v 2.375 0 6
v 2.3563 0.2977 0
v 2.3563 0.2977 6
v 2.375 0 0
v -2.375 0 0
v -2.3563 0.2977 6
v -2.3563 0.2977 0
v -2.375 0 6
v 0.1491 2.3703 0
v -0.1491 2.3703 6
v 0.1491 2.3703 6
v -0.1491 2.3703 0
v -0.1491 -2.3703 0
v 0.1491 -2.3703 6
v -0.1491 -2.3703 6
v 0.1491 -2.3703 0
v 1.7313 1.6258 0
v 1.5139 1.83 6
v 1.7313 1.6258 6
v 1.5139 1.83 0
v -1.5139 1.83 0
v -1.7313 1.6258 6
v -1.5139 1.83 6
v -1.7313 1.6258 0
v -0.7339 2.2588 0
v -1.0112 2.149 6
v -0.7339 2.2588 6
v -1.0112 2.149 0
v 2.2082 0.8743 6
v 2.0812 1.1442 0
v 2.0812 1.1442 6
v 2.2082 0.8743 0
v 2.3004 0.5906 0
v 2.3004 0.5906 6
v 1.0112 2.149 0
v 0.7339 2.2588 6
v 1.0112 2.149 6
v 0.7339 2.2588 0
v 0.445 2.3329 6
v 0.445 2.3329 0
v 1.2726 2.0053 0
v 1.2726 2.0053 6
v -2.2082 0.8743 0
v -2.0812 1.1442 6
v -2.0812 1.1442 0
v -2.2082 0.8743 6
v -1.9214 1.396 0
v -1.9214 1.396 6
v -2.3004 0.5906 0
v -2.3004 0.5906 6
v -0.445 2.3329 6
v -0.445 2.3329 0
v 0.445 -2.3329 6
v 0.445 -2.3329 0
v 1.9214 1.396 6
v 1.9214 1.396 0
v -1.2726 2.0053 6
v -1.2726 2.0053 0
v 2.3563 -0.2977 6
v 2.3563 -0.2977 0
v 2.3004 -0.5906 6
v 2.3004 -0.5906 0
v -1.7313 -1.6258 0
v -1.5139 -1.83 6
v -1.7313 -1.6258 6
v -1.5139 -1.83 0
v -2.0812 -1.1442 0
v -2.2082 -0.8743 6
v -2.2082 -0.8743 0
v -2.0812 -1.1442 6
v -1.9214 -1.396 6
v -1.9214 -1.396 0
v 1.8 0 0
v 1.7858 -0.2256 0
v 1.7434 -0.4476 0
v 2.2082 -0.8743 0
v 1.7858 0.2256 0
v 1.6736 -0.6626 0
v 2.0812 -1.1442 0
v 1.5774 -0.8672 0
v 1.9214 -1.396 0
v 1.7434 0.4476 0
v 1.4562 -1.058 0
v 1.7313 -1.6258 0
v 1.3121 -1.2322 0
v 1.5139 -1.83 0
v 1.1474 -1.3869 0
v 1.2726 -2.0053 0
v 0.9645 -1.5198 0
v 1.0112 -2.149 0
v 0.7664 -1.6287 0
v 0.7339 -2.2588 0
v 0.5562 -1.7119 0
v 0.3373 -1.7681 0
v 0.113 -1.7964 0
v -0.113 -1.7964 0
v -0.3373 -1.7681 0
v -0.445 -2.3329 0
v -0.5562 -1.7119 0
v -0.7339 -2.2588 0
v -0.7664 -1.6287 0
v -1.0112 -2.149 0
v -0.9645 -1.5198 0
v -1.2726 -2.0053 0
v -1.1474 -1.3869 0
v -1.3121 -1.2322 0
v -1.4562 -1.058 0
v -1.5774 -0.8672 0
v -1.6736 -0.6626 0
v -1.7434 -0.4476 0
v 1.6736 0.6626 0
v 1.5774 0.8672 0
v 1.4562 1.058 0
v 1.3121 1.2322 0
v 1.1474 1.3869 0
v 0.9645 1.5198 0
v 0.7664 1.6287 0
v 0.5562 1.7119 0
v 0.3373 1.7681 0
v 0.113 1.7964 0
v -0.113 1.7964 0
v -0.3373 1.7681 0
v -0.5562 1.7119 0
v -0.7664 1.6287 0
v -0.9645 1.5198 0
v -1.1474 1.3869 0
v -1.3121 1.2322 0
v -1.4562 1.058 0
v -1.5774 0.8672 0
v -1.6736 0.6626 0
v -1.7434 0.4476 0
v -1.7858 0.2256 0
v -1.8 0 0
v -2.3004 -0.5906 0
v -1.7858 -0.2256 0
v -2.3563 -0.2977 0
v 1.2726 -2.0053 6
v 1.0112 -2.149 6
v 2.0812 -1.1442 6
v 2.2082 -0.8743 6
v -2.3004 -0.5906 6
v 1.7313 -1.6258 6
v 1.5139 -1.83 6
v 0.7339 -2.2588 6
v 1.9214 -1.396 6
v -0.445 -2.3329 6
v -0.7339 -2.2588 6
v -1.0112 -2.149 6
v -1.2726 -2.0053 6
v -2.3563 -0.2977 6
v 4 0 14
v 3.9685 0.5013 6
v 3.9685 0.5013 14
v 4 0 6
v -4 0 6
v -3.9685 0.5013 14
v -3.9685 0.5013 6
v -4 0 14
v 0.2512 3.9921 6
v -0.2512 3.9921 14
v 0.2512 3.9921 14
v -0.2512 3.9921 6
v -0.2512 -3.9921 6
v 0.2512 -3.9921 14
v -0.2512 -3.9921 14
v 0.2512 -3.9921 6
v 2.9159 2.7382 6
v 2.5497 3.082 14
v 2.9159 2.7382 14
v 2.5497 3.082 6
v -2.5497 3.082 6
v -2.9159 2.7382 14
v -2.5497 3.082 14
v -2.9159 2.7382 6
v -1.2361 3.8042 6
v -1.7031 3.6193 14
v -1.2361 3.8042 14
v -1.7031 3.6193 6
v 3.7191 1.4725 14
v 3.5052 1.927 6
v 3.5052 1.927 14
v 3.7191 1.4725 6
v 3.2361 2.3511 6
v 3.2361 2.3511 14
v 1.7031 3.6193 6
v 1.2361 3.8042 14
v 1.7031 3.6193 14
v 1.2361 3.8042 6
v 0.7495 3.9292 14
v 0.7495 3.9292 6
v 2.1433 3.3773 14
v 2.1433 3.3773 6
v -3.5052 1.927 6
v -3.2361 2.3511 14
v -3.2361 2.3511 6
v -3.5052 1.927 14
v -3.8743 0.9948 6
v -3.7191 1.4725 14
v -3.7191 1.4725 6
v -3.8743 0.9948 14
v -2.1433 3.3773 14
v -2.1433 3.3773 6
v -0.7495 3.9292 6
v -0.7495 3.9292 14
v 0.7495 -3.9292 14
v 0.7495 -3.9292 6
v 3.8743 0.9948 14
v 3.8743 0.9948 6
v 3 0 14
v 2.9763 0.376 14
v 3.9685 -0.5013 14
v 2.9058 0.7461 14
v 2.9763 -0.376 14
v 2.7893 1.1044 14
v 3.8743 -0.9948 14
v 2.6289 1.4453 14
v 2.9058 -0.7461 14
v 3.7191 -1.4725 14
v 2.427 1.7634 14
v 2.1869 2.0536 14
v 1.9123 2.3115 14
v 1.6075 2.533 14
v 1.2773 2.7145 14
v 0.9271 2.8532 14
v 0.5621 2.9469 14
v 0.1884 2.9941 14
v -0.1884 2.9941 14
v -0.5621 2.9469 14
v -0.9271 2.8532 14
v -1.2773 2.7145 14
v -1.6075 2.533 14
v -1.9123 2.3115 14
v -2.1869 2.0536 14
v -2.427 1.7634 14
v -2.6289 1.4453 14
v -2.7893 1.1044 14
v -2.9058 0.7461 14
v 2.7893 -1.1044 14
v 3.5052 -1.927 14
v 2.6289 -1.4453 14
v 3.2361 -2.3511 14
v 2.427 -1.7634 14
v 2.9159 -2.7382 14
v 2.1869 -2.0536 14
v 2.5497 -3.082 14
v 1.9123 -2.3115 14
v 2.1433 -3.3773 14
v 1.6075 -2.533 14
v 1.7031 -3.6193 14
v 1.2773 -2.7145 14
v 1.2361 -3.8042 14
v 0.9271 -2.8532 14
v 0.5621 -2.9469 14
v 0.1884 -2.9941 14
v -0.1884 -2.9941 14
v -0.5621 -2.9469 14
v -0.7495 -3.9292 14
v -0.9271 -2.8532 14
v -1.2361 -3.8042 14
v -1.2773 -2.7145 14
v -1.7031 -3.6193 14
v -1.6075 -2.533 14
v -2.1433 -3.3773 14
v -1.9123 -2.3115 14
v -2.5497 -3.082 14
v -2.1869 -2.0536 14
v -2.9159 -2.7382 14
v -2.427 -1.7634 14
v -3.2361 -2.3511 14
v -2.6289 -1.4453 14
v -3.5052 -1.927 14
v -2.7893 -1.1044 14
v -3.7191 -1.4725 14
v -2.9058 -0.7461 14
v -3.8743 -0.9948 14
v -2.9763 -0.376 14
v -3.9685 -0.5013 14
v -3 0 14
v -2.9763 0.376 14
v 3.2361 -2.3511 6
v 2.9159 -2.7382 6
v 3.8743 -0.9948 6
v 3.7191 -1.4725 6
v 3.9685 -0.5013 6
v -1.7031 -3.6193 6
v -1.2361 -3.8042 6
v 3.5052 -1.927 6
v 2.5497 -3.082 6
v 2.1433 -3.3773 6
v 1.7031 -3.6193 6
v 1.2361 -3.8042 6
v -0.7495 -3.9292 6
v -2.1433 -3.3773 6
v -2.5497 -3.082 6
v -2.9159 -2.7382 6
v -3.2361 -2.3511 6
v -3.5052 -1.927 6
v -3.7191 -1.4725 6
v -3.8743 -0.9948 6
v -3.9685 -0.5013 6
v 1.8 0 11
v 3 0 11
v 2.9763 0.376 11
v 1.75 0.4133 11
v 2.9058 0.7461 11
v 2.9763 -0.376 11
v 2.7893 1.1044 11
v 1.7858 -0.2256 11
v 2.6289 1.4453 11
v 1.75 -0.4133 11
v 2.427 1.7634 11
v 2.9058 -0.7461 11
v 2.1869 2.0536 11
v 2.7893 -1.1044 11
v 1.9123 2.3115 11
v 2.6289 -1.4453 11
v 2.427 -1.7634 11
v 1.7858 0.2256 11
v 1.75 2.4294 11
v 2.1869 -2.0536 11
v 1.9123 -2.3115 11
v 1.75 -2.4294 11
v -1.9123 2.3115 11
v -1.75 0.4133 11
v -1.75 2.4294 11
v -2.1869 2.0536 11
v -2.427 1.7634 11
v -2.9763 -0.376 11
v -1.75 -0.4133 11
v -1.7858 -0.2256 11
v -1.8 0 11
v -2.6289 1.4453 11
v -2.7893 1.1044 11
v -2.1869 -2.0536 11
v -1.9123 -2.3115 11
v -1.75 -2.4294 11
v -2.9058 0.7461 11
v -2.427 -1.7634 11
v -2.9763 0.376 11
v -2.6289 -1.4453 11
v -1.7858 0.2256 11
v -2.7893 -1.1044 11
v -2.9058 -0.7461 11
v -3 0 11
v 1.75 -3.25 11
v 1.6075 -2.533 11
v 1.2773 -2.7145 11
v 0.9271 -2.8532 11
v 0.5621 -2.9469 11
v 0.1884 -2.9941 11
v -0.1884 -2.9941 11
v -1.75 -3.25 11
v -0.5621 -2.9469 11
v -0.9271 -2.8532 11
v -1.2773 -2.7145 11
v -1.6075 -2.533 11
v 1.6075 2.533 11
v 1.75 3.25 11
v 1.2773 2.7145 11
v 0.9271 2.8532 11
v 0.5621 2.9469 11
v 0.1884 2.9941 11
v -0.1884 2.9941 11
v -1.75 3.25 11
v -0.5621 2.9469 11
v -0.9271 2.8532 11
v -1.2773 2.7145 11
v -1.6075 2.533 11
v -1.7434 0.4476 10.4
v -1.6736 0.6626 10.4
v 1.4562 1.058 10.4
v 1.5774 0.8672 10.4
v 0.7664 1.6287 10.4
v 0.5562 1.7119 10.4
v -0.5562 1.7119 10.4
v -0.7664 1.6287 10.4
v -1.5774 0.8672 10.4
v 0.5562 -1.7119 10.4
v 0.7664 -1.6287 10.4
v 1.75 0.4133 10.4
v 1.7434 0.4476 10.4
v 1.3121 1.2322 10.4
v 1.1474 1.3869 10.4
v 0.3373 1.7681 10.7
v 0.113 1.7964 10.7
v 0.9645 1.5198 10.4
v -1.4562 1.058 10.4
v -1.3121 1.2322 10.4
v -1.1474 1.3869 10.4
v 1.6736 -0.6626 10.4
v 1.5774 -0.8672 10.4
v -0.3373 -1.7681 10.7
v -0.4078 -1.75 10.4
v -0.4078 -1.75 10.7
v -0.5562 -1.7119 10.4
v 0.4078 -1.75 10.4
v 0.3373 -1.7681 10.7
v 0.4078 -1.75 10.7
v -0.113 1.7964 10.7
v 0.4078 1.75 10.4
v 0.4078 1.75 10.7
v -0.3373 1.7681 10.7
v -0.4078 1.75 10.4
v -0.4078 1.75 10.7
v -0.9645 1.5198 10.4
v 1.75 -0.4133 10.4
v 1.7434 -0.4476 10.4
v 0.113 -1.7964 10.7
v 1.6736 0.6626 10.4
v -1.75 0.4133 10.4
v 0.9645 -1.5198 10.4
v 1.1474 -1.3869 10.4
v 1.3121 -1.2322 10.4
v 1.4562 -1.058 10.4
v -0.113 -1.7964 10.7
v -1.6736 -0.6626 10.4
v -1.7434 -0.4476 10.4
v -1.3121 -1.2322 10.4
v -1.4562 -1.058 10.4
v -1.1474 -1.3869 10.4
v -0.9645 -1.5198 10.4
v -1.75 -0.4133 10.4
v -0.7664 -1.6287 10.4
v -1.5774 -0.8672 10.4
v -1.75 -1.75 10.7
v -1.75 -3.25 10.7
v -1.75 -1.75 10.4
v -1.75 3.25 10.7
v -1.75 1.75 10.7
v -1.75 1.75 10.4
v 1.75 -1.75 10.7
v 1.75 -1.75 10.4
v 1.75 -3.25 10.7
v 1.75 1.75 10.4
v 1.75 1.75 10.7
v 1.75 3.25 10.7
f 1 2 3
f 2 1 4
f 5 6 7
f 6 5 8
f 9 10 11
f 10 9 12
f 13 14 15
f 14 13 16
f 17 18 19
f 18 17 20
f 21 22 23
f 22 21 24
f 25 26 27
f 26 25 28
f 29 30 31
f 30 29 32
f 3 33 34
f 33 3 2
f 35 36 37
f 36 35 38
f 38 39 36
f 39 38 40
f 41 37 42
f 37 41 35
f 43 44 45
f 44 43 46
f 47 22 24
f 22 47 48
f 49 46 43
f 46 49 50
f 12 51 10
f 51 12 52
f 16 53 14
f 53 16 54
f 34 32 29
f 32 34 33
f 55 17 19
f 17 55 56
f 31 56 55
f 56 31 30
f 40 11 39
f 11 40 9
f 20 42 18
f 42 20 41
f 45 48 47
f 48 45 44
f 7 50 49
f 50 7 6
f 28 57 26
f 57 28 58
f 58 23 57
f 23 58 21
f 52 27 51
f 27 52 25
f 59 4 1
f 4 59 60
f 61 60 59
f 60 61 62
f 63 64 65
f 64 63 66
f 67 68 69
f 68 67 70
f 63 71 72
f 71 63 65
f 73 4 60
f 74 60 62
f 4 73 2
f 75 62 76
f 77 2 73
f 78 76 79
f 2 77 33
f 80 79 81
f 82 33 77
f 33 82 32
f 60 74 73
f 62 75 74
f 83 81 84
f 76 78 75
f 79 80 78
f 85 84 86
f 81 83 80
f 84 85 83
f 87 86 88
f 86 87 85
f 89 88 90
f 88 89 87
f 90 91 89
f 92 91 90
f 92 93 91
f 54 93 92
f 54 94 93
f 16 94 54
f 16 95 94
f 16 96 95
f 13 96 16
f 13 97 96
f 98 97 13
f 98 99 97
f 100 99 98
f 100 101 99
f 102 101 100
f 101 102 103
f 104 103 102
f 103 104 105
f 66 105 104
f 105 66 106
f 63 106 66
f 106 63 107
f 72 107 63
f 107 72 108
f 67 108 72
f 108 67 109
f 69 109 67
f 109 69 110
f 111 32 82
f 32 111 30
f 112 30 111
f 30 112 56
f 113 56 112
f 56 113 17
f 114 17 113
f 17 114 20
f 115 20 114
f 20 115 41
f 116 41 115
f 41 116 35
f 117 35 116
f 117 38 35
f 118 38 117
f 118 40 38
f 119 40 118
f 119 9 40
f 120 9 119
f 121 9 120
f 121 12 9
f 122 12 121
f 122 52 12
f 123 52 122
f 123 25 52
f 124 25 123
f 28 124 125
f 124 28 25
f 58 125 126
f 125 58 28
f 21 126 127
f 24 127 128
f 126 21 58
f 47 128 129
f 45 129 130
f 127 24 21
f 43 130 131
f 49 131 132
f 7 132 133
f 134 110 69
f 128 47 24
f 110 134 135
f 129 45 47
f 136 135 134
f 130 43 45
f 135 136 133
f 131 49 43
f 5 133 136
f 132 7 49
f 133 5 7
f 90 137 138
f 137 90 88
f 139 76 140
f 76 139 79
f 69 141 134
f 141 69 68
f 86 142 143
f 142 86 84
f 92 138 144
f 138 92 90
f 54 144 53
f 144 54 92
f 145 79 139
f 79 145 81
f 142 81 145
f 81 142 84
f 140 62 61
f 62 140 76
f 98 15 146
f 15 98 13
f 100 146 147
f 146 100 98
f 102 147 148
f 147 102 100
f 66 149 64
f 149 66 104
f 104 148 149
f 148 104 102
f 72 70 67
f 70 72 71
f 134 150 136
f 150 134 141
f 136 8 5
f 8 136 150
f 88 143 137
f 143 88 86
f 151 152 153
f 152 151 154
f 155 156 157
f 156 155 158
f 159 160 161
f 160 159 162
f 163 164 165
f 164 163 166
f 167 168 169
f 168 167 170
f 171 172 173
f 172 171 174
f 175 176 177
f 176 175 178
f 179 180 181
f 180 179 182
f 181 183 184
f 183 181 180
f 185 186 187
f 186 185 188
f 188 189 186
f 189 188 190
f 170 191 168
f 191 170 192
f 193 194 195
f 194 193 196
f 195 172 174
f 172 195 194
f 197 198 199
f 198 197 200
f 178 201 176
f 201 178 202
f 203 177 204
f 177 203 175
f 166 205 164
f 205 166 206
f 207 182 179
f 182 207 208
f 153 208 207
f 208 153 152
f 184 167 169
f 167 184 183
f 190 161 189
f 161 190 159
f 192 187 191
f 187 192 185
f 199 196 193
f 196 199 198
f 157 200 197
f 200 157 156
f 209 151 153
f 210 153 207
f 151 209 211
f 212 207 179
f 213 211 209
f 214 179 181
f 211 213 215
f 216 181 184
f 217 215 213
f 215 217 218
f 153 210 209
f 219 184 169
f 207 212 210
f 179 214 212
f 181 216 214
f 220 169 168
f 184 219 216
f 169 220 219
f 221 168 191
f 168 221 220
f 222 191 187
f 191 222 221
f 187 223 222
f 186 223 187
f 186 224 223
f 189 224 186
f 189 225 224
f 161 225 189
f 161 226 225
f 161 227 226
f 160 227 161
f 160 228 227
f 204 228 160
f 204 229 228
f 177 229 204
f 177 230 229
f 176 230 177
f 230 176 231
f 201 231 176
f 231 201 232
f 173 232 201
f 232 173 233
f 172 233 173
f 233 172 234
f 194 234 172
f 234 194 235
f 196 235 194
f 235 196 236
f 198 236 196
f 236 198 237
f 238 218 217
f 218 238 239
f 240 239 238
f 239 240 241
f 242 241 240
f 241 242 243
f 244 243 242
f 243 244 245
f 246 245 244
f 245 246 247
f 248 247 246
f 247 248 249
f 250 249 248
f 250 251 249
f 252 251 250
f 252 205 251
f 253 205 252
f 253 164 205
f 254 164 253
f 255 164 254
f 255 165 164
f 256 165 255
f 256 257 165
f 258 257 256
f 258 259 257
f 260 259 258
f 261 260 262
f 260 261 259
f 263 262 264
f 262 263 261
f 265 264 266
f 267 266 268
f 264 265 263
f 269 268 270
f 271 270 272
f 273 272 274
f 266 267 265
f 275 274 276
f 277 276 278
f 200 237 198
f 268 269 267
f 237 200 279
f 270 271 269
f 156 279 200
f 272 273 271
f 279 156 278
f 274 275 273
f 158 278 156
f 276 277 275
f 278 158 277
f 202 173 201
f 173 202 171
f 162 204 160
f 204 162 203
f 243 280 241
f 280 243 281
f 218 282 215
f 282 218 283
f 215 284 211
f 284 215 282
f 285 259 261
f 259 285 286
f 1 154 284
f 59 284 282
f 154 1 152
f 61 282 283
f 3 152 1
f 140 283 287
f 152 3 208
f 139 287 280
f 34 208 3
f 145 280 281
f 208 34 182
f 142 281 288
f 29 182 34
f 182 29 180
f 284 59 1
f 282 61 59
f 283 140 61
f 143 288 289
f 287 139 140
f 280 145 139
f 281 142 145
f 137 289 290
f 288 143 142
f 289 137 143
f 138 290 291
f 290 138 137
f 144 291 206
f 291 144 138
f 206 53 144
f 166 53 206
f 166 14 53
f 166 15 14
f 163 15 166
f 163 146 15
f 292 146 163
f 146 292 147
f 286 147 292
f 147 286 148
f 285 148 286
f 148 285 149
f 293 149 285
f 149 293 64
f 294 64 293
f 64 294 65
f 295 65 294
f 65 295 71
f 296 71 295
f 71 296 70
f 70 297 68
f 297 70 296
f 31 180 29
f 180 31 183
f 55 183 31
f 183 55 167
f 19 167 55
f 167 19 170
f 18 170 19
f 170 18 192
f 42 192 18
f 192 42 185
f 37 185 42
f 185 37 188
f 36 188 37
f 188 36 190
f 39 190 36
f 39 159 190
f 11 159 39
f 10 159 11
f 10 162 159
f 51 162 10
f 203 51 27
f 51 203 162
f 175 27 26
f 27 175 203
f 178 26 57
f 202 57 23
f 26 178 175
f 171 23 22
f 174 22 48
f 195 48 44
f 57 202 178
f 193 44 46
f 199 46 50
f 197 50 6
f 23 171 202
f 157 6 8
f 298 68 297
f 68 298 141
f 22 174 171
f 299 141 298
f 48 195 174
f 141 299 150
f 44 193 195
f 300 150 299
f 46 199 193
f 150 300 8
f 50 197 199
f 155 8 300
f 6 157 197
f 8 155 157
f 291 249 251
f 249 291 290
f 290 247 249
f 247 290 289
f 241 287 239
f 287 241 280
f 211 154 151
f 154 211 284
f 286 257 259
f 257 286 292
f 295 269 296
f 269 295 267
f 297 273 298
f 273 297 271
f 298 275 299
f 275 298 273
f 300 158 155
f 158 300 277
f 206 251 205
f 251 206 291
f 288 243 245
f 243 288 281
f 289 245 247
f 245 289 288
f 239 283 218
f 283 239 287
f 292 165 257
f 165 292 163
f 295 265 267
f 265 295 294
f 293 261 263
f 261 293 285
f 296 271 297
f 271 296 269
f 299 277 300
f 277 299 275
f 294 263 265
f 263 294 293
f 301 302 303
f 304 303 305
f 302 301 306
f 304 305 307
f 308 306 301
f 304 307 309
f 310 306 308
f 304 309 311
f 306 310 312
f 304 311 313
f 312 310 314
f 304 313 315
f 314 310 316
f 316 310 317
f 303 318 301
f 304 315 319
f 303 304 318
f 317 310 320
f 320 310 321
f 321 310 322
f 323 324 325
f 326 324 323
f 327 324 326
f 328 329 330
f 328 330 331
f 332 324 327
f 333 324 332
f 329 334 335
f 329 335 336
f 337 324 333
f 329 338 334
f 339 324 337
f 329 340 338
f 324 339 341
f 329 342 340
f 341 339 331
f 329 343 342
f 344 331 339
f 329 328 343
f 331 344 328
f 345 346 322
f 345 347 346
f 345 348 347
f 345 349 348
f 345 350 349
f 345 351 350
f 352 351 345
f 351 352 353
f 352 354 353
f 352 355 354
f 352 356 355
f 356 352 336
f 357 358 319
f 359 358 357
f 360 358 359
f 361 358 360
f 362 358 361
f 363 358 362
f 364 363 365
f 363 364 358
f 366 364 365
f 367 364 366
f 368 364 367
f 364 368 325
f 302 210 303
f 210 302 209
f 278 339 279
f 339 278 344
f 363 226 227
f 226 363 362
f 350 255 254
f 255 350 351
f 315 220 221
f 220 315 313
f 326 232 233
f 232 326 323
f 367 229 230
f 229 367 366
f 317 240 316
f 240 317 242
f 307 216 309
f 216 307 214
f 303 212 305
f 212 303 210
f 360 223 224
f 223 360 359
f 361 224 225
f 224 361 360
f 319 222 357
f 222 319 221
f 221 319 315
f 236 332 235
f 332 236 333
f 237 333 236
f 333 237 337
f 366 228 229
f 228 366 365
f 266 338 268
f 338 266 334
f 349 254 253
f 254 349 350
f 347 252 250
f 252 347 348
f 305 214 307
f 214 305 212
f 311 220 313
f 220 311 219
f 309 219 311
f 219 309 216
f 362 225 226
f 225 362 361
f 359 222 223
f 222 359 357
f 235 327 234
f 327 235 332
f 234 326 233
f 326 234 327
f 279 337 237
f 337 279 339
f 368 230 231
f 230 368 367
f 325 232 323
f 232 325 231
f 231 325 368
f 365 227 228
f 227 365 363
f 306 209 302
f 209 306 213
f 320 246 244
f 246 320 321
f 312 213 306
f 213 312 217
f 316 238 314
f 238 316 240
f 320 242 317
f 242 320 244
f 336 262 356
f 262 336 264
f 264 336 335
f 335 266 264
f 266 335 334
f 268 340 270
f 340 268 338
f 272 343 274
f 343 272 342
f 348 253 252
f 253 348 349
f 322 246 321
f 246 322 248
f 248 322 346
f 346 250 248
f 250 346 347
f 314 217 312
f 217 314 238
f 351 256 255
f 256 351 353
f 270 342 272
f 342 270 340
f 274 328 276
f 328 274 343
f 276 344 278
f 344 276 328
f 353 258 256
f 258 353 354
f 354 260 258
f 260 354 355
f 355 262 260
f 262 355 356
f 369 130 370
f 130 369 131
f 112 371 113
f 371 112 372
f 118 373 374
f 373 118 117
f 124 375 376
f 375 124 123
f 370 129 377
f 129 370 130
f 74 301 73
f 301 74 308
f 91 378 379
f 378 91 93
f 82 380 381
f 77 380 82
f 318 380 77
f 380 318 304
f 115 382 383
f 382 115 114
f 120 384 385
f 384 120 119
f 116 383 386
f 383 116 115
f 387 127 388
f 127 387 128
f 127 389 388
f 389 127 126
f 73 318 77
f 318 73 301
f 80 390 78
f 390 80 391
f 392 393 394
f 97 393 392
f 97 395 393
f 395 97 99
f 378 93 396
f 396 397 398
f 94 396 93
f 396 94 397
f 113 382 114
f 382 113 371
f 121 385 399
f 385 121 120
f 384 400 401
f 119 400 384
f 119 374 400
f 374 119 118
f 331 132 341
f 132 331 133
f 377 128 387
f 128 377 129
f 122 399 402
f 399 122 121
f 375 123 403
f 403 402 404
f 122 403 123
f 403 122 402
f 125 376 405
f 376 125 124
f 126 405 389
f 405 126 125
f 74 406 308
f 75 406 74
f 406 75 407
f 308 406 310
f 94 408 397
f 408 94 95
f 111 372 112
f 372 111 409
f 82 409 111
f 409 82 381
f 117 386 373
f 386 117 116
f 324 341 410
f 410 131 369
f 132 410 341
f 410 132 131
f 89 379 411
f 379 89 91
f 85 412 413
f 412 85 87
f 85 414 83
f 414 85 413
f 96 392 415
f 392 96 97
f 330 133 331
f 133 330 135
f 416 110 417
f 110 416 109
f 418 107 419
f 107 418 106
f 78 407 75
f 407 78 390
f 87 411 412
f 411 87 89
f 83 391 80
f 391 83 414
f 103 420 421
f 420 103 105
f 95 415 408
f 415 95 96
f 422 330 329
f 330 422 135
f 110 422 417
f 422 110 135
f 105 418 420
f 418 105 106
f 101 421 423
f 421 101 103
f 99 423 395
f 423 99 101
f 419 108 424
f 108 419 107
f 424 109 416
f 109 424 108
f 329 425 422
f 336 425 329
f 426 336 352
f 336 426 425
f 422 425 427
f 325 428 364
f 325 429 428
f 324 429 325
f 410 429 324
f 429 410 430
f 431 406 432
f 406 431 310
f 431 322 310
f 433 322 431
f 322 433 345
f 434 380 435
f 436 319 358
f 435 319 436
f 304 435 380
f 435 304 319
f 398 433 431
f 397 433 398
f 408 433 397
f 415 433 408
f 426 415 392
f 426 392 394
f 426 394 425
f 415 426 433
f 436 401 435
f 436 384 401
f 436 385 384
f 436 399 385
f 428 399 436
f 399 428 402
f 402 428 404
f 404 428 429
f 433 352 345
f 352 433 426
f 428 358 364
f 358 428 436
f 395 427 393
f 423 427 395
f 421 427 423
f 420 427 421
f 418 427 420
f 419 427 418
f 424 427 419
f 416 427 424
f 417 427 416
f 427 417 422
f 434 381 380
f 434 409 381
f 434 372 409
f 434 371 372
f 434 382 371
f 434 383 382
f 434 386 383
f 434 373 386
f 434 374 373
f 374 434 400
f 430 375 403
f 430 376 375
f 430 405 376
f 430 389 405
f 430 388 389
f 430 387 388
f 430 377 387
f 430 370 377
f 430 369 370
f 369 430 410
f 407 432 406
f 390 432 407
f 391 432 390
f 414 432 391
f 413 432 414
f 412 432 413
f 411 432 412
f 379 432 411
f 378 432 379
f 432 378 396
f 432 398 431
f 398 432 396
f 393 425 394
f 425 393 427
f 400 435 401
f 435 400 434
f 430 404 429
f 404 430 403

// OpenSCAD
$fn = 50;


difference() {
	union() {
		cylinder(h = 9, r = 2.3750000000);
		translate(v = [0, 0, 6.0000000000]) {
			cylinder(h = 8, r = 4.0000000000);
		}
	}
	union() {
		translate(v = [0, 0, 11]) {
			rotate(a = [0, 0, 0]) {
				difference() {
					union() {
						translate(v = [0, 0, -16.0000000000]) {
							rotate(a = [0, 0, 0]) {
								difference() {
									union() {
										#translate(v = [-1.8000000000, -3.0000000000, -0.3000000000]) {
											cube(size = [3.6000000000, 6.0000000000, 0.3000000000]);
										}
										#translate(v = [-1.8000000000, -1.8000000000, -0.6000000000]) {
											cube(size = [3.6000000000, 3.6000000000, 0.3000000000]);
										}
										#translate(v = [-1.8000000000, -3.0000000000, 2.5000000000]) {
											cube(size = [3.6000000000, 6.0000000000, 0.3000000000]);
										}
										#translate(v = [-1.8000000000, -1.8000000000, 2.8000000000]) {
											cube(size = [3.6000000000, 3.6000000000, 0.3000000000]);
										}
										#linear_extrude(height = 2.5000000000) {
											polygon(points = [[3.4620000000, 0.0000000000], [1.7310000000, 2.9981799479], [-1.7310000000, 2.9981799479], [-3.4620000000, 0.0000000000], [-1.7310000000, -2.9981799479], [1.7310000000, -2.9981799479]]);
										}
										#translate(v = [-1.8000000000, -3.0000000000, -0.3000000000]) {
											cube(size = [3.6000000000, 6.0000000000, 0.3000000000]);
										}
										#translate(v = [-1.8000000000, -1.8000000000, -0.6000000000]) {
											cube(size = [3.6000000000, 3.6000000000, 0.3000000000]);
										}
										#translate(v = [-1.8000000000, -3.0000000000, 2.5000000000]) {
											cube(size = [3.6000000000, 6.0000000000, 0.3000000000]);
										}
										#translate(v = [-1.8000000000, -1.8000000000, 2.8000000000]) {
											cube(size = [3.6000000000, 3.6000000000, 0.3000000000]);
										}
										#translate(v = [-1.8000000000, -3.0000000000, -0.3000000000]) {
											cube(size = [3.6000000000, 6.0000000000, 0.3000000000]);
										}
										#translate(v = [-1.8000000000, -1.8000000000, -0.6000000000]) {
											cube(size = [3.6000000000, 3.6000000000, 0.3000000000]);
										}
										#translate(v = [-1.8000000000, -3.0000000000, 2.5000000000]) {
											cube(size = [3.6000000000, 6.0000000000, 0.3000000000]);
										}
										#translate(v = [-1.8000000000, -1.8000000000, 2.8000000000]) {
											cube(size = [3.6000000000, 3.6000000000, 0.3000000000]);
										}
									}
									union();
								}
							}
						}
						translate(v = [0, 0, -16.0000000000]) {
							rotate(a = [0, 0, 0]) {
								difference() {
									union() {
										#translate(v = [-1.8000000000, -3.0000000000, -0.3000000000]) {
											cube(size = [3.6000000000, 6.0000000000, 0.3000000000]);
										}
										#translate(v = [-1.8000000000, -1.8000000000, -0.6000000000]) {
											cube(size = [3.6000000000, 3.6000000000, 0.3000000000]);
										}
										#translate(v = [-1.8000000000, -3.0000000000, 2.5000000000]) {
											cube(size = [3.6000000000, 6.0000000000, 0.3000000000]);
										}
										#translate(v = [-1.8000000000, -1.8000000000, 2.8000000000]) {
											cube(size = [3.6000000000, 3.6000000000, 0.3000000000]);
										}
										#linear_extrude(height = 2.5000000000) {
											polygon(points = [[3.4620000000, 0.0000000000], [1.7310000000, 2.9981799479], [-1.7310000000, 2.9981799479], [-3.4620000000, 0.0000000000], [-1.7310000000, -2.9981799479], [1.7310000000, -2.9981799479]]);
										}
										#translate(v = [-1.8000000000, -3.0000000000, -0.3000000000]) {
											cube(size = [3.6000000000, 6.0000000000, 0.3000000000]);
										}
										#translate(v = [-1.8000000000, -1.8000000000, -0.6000000000]) {
											cube(size = [3.6000000000, 3.6000000000, 0.3000000000]);
										}
										#translate(v = [-1.8000000000, -3.0000000000, 2.5000000000]) {
											cube(size = [3.6000000000, 6.0000000000, 0.3000000000]);
										}
										#translate(v = [-1.8000000000, -1.8000000000, 2.8000000000]) {
											cube(size = [3.6000000000, 3.6000000000, 0.3000000000]);
										}
										#translate(v = [-1.8000000000, -3.0000000000, -0.3000000000]) {
											cube(size = [3.6000000000, 6.0000000000, 0.3000000000]);
										}
										#translate(v = [-1.8000000000, -1.8000000000, -0.6000000000]) {
											cube(size = [3.6000000000, 3.6000000000, 0.3000000000]);
										}
										#translate(v = [-1.8000000000, -3.0000000000, 2.5000000000]) {
											cube(size = [3.6000000000, 6.0000000000, 0.3000000000]);
										}
										#translate(v = [-1.8000000000, -1.8000000000, 2.8000000000]) {
											cube(size = [3.6000000000, 3.6000000000, 0.3000000000]);
										}
									}
									union();
								}
							}
						}
						translate(v = [0, 0, -16.0000000000]) {
							rotate(a = [0, 0, 0]) {
								difference() {
									union() {
										#translate(v = [-1.8000000000, -3.0000000000, -0.3000000000]) {
											cube(size = [3.6000000000, 6.0000000000, 0.3000000000]);
										}
										#translate(v = [-1.8000000000, -1.8000000000, -0.6000000000]) {
											cube(size = [3.6000000000, 3.6000000000, 0.3000000000]);
										}
										#translate(v = [-1.8000000000, -3.0000000000, 2.5000000000]) {
											cube(size = [3.6000000000, 6.0000000000, 0.3000000000]);
										}
										#translate(v = [-1.8000000000, -1.8000000000, 2.8000000000]) {
											cube(size = [3.6000000000, 3.6000000000, 0.3000000000]);
										}
										#linear_extrude(height = 2.5000000000) {
											polygon(points = [[3.4620000000, 0.0000000000], [1.7310000000, 2.9981799479], [-1.7310000000, 2.9981799479], [-3.4620000000, 0.0000000000], [-1.7310000000, -2.9981799479], [1.7310000000, -2.9981799479]]);
										}
										#translate(v = [-1.8000000000, -3.0000000000, -0.3000000000]) {
											cube(size = [3.6000000000, 6.0000000000, 0.3000000000]);
										}
										#translate(v = [-1.8000000000, -1.8000000000, -0.6000000000]) {
											cube(size = [3.6000000000, 3.6000000000, 0.3000000000]);
										}
										#translate(v = [-1.8000000000, -3.0000000000, 2.5000000000]) {
											cube(size = [3.6000000000, 6.0000000000, 0.3000000000]);
										}
										#translate(v = [-1.8000000000, -1.8000000000, 2.8000000000]) {
											cube(size = [3.6000000000, 3.6000000000, 0.3000000000]);
										}
										#translate(v = [-1.8000000000, -3.0000000000, -0.3000000000]) {
											cube(size = [3.6000000000, 6.0000000000, 0.3000000000]);
										}
										#translate(v = [-1.8000000000, -1.8000000000, -0.6000000000]) {
											cube(size = [3.6000000000, 3.6000000000, 0.3000000000]);
										}
										#translate(v = [-1.8000000000, -3.0000000000, 2.5000000000]) {
											cube(size = [3.6000000000, 6.0000000000, 0.3000000000]);
										}
										#translate(v = [-1.8000000000, -1.8000000000, 2.8000000000]) {
											cube(size = [3.6000000000, 3.6000000000, 0.3000000000]);
										}
									}
									union();
								}
							}
						}
						#translate(v = [0, 0, -16.0000000000]) {
							cylinder(h = 16, r = 1.5000000000);
						}
						#cylinder(h = 3.2000000000, r = 3.0000000000);
						#translate(v = [0, 0, -16.0000000000]) {
							cylinder(h = 16, r = 1.8000000000);
						}
						#translate(v = [-1.7500000000, -3.2500000000, -0.3000000000]) {
							cube(size = [3.5000000000, 6.5000000000, 0.3000000000]);
						}
						#translate(v = [-1.7500000000, -1.7500000000, -0.6000000000]) {
							cube(size = [3.5000000000, 3.5000000000, 0.3000000000]);
						}
						#translate(v = [0, 0, -16.0000000000]) {
							cylinder(h = 16, r = 1.5000000000);
						}
					}
					union();
				}
			}
		}
		translate(v = [0, 0, -100.0000000000]) {
			cylinder(h = 200, r = 1.8000000000);
		}
	}
}
